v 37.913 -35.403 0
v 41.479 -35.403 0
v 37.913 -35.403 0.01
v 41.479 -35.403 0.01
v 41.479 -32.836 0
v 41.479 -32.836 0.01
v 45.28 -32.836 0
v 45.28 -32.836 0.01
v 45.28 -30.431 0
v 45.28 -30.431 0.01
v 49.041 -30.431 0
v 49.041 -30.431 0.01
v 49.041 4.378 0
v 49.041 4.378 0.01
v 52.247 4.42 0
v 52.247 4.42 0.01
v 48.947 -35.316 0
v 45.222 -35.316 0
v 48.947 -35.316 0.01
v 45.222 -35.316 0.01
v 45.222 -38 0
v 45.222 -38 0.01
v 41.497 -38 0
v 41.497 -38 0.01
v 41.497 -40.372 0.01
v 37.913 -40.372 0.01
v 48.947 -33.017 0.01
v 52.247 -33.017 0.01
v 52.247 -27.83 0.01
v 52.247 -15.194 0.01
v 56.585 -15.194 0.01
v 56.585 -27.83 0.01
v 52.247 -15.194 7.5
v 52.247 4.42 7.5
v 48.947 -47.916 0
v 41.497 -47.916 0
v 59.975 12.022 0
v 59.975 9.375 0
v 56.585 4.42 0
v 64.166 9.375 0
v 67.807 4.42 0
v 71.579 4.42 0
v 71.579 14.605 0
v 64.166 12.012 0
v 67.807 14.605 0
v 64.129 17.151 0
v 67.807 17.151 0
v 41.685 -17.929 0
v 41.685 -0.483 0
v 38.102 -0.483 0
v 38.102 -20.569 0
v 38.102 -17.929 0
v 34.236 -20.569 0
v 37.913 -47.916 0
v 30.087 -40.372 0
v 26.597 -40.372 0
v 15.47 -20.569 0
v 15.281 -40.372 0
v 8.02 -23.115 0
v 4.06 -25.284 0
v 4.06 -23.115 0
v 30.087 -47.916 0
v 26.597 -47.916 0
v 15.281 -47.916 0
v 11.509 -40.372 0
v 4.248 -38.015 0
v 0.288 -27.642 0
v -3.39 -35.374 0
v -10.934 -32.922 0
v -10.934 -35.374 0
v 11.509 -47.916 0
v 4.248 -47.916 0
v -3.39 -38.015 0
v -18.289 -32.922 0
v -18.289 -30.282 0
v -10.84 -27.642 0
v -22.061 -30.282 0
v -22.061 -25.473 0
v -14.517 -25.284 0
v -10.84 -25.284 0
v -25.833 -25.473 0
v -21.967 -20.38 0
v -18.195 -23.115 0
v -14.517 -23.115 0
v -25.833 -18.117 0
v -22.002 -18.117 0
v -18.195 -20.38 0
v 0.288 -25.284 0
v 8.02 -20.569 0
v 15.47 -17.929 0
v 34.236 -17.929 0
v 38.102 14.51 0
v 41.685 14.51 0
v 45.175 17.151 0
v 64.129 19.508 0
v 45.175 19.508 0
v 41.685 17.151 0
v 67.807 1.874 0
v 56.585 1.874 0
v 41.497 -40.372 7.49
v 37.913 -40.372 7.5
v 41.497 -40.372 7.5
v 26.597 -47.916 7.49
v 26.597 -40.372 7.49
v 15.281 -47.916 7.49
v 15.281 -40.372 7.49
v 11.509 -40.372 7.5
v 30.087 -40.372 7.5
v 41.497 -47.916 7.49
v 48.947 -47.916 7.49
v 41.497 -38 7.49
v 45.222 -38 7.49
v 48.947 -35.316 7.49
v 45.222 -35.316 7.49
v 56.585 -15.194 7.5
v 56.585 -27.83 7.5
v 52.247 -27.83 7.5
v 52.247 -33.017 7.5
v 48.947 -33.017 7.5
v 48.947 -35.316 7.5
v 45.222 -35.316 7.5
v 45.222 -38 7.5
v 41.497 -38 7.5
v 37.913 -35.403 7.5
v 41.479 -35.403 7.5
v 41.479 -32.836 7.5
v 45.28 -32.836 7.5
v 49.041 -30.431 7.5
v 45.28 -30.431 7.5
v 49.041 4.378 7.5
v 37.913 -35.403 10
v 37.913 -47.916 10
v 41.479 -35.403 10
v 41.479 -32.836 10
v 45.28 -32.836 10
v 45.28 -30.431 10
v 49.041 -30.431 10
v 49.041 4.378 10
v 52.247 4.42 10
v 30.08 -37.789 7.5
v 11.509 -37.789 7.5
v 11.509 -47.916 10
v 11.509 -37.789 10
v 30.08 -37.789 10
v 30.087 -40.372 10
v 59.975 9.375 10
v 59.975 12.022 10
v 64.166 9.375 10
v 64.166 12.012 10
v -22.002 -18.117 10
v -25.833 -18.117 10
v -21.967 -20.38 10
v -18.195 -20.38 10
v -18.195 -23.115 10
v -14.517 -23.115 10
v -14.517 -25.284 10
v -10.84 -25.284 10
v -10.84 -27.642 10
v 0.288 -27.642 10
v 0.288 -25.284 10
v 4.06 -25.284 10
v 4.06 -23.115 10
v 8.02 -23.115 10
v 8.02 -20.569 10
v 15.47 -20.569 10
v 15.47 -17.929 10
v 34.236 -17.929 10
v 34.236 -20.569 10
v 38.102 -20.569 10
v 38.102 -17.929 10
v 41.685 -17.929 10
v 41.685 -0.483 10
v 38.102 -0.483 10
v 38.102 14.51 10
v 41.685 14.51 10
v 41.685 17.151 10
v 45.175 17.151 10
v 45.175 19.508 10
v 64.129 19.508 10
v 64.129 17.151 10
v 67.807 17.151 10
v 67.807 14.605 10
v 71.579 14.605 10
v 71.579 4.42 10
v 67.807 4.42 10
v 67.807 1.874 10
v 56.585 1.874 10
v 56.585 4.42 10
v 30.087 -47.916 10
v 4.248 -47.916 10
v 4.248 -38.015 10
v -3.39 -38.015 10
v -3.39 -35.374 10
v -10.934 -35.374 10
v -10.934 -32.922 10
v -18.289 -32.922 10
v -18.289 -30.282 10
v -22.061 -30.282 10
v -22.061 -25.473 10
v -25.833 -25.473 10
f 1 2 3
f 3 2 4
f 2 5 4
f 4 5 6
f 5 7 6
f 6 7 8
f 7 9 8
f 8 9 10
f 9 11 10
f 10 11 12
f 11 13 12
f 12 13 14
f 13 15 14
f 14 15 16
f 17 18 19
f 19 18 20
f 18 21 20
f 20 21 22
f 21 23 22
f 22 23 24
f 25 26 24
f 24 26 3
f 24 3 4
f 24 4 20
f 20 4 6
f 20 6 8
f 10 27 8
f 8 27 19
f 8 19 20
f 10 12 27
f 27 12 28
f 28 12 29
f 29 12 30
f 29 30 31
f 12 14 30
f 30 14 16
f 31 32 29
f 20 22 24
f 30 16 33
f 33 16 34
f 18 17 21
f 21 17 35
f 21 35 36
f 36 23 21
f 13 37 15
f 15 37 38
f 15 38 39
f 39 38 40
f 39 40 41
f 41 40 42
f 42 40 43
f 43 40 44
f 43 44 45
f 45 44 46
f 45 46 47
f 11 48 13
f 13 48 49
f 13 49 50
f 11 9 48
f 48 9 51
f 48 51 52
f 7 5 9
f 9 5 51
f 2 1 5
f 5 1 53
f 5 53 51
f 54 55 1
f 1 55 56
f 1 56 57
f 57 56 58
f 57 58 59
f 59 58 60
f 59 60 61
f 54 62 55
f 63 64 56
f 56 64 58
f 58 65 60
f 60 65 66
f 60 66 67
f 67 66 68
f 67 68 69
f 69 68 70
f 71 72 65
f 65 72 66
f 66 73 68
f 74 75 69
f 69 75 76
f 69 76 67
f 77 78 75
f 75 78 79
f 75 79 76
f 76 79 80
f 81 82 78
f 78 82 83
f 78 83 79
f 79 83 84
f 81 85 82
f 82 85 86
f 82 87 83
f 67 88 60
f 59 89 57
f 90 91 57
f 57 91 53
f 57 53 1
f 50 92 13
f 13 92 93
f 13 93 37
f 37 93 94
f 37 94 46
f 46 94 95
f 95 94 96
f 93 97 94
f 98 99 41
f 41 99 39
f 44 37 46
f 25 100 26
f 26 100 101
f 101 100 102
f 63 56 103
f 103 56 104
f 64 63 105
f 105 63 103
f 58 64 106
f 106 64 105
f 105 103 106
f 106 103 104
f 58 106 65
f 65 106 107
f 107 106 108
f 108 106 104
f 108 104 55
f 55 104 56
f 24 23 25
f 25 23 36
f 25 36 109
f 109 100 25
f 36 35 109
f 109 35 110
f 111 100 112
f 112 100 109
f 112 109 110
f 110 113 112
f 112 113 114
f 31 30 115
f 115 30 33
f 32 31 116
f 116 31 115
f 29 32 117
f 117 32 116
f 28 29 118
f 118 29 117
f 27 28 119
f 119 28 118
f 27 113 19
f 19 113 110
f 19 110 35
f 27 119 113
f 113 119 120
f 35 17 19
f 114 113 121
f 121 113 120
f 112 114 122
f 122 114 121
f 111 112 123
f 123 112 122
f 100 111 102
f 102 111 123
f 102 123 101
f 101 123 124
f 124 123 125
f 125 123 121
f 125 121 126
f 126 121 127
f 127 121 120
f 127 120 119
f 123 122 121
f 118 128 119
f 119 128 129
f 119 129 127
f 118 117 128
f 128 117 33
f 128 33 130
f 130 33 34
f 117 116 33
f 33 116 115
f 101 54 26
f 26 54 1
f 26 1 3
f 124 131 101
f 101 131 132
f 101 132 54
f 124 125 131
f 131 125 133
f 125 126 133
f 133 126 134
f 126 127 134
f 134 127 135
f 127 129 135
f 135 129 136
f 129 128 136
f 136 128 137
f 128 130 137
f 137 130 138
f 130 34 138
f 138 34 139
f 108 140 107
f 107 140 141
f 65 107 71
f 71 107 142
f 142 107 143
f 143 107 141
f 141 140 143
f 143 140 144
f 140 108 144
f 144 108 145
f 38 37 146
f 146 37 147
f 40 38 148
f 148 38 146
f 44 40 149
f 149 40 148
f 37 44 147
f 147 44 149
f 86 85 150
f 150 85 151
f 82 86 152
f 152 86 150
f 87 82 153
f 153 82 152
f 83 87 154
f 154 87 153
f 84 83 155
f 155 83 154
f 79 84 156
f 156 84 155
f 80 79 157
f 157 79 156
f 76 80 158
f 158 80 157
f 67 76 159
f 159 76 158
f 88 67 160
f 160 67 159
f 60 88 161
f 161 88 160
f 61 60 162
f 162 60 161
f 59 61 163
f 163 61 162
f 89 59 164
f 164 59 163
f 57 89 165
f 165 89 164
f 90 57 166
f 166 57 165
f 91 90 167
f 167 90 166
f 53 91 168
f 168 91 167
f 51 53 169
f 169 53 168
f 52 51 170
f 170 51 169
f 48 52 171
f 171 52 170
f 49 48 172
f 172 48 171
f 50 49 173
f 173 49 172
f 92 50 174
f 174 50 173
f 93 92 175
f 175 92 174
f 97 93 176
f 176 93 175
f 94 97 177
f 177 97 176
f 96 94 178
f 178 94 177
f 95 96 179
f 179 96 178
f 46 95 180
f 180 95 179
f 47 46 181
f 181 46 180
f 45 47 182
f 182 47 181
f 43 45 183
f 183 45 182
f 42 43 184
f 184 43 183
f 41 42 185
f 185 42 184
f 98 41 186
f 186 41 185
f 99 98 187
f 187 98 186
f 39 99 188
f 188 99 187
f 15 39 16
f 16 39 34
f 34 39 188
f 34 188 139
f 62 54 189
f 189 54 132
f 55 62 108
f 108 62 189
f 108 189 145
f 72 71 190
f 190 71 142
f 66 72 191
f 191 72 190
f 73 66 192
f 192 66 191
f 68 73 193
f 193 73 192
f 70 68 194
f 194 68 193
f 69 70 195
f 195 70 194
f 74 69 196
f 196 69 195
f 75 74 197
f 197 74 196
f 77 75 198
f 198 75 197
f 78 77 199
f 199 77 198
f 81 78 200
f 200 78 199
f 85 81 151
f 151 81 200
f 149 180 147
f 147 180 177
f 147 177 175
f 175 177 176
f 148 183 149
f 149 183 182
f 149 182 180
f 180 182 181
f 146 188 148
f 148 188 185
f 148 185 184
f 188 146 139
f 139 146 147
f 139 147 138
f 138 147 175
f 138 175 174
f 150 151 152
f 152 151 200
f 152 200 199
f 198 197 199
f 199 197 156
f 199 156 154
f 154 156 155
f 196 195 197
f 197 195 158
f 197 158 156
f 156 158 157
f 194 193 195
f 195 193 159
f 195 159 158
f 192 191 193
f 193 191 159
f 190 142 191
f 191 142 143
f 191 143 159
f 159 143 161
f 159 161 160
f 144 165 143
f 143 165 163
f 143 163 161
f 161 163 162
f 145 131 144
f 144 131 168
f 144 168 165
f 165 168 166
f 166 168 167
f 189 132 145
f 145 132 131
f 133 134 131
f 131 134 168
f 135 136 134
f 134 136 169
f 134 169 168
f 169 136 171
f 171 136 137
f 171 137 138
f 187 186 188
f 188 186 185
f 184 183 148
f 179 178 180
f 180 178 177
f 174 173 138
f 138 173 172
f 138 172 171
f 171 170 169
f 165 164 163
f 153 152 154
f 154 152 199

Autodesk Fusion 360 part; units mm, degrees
sketch "Dino" plane through (0, 0, 0) normal (0, 0, 1) x (1, 0, 0)
  line L0 (-25.8333, -18.1173) -> (-25.8333, -25.4727)
  line L1 (-25.8333, -25.4727) -> (-22.0613, -25.4727)
  line L2 (-22.0613, -25.4727) -> (-22.0613, -30.282)
  line L3 (-22.0613, -30.282) -> (-18.2893, -30.282)
  line L4 (-18.2893, -30.282) -> (-18.2893, -32.9224)
  line L5 (-18.2893, -32.9224) -> (-10.9339, -32.9224)
  line L6 (-10.9339, -32.9224) -> (-10.9339, -35.3742)
  line L7 (-10.9339, -35.3742) -> (-3.3899, -35.3742)
  line L8 (-3.3899, -35.3742) -> (-3.3899, -38.0146)
  line L9 (-3.3899, -38.0146) -> (4.2484, -38.0146)
  line L10 (4.2484, -38.0146) -> (4.2484, -47.9161)
  line L11 (4.2484, -47.9161) -> (11.5095, -47.9161)
  line L12 (11.5095, -47.9161) -> (11.5095, -40.3721)
  line L13 (11.5095, -40.3721) -> (15.2815, -40.3721)
  line L14 (15.2815, -40.3721) -> (15.2815, -47.9161)
  line L15 (15.2815, -47.9161) -> (26.5975, -47.9161)
  line L16 (26.5975, -40.3721) -> (30.0866, -40.3721)
  line L17 (30.0866, -40.3721) -> (30.0866, -47.9161)
  line L18 (30.0866, -47.9161) -> (37.9135, -47.9161)
  line L19 (37.9135, -47.9161) -> (37.9135, -40.3721)
  line L20 (37.9135, -40.3721) -> (41.4969, -40.3721)
  line L21 (41.4969, -40.3721) -> (41.4969, -47.9161)
  line L22 (41.4969, -47.9161) -> (48.9466, -47.9161)
  line L23 (48.9466, -47.9161) -> (48.9466, -33.0167)
  line L24 (48.9466, -33.0167) -> (52.2471, -33.0167)
  line L25 (52.2471, -33.0167) -> (52.2471, -27.8302)
  line L26 (52.2471, -27.8302) -> (56.5849, -27.8302)
  line L27 (56.5849, -27.8302) -> (56.5849, -15.194)
  line L28 (56.5849, -15.194) -> (52.2471, -15.194)
  line L29 (52.2471, -15.194) -> (52.2471, 4.4204)
  line L30 (52.2471, 4.4204) -> (56.5849, 4.4204)
  line L31 (56.5849, 4.4204) -> (56.5849, 1.8743)
  line L32 (56.5849, 1.8743) -> (67.8065, 1.8743)
  line L33 (67.8065, 1.8743) -> (67.8065, 4.4204)
  line L34 (67.8065, 4.4204) -> (71.5785, 4.4204)
  line L35 (71.5785, 4.4204) -> (71.5785, 14.6048)
  line L36 (71.5785, 14.6048) -> (67.8065, 14.6048)
  line L37 (67.8065, 14.6048) -> (67.8065, 17.1509)
  line L38 (67.8065, 17.1509) -> (64.1289, 17.1509)
  line L39 (64.1289, 17.1509) -> (64.1289, 19.5084)
  line L40 (64.1289, 19.5084) -> (45.1746, 19.5084)
  line L41 (45.1746, 19.5084) -> (45.1746, 17.1509)
  line L42 (45.1746, 17.1509) -> (41.6855, 17.1509)
  line L43 (41.6855, 17.1509) -> (41.6855, 14.5105)
  line L44 (41.6855, 14.5105) -> (38.1021, 14.5105)
  line L45 (38.1021, 14.5105) -> (38.1021, -0.4832)
  line L46 (38.1021, -0.4832) -> (41.6855, -0.4832)
  line L47 (41.6855, -0.4832) -> (41.6855, -17.9287)
  line L48 (41.6855, -17.9287) -> (38.1021, -17.9287)
  line L49 (38.1021, -17.9287) -> (38.1021, -20.5691)
  line L50 (38.1021, -20.5691) -> (34.2358, -20.5691)
  line L51 (34.2358, -20.5691) -> (34.2358, -17.9287)
  line L52 (34.2358, -17.9287) -> (15.4701, -17.9287)
  line L53 (15.4701, -17.9287) -> (15.4701, -20.5691)
  line L54 (15.4701, -20.5691) -> (8.0204, -20.5691)
  line L55 (8.0204, -20.5691) -> (8.0204, -23.1152)
  line L56 (8.0204, -23.1152) -> (4.0598, -23.1152)
  line L57 (4.0598, -23.1152) -> (4.0598, -25.2841)
  line L58 (4.0598, -25.2841) -> (0.2878, -25.2841)
  line L59 (0.2878, -25.2841) -> (0.2878, -27.6416)
  line L60 (0.2878, -27.6416) -> (-10.8396, -27.6416)
  line L61 (-10.8396, -27.6416) -> (-10.8396, -25.2841)
  line L62 (-10.8396, -25.2841) -> (-14.5173, -25.2841)
  line L63 (-14.5173, -25.2841) -> (-14.5173, -23.1152)
  line L64 (-14.5173, -23.1152) -> (-18.195, -23.1152)
  line L65 (-18.195, -23.1152) -> (-18.195, -20.3805)
  line L66 (-18.195, -20.3805) -> (-21.967, -20.3805)
  line L67 (-25.8333, -18.1173) -> (-22.002, -18.1173)
  line L68 (-22.002, -18.1173) -> (-21.967, -20.3805)
  line L69 (11.5095, -40.3721) -> (11.5095, -37.7886)
  line L70 (11.5095, -37.7886) -> (30.0797, -37.7886)
  line L71 (30.0797, -37.7886) -> (30.0866, -40.3721)
  line L72 (30.0866, -40.3721) -> (26.5975, -40.3721)
  line L73 (37.9135, -40.3721) -> (37.9135, -35.4027)
  line L74 (37.9135, -35.4027) -> (41.4793, -35.4027)
  line L75 (41.4793, -35.4027) -> (41.4793, -32.8357)
  line L76 (41.4793, -32.8357) -> (45.2799, -32.8357)
  line L77 (45.2799, -32.8357) -> (45.2799, -30.4315)
  line L78 (45.2799, -30.4315) -> (49.0411, -30.4315)
  line L79 (49.0411, -30.4315) -> (49.0411, 4.3785)
  line L80 (49.0411, 4.3785) -> (52.2471, 4.4204)
  line L81 (59.9748, 12.022) -> (59.9748, 9.3751)
  line L82 (59.9748, 9.3751) -> (64.1657, 9.3751)
  line L83 (64.1657, 9.3751) -> (64.1657, 12.0124)
  line L84 (64.1657, 12.0124) -> (59.9748, 12.022)
  line L85 (15.2815, -40.3721) -> (26.5975, -40.3721)
  line L86 (26.5975, -45.2558) -> (26.5975, -47.9161)
  line L87 (26.5975, -45.2558) -> (26.5975, -40.3721)
  line L88 (41.4969, -40.3721) -> (41.4969, -38)
  line L89 (41.4969, -38) -> (45.2217, -38)
  line L90 (45.2217, -38) -> (45.2217, -35.3158)
  line L91 (45.2217, -35.3158) -> (48.9466, -35.3158)
extrude "Extrude18" add sketch "Dino" along normal blind 10 contours L0 L1 L2 L3 L4 L5 L6 L7 L8 L9 L10 L11 L12 L17 L18 L19 L30 L31 L32 L33 L34 L35 L36 L37 L38 L39 L40 L41 L42 L43 L44 L45 L46 L47 L48 L49 L50 L51 L52 L53 L54 L55 L56 L57 L58 L59 L60 L61 L62 L63 L64 L65 L66 L67 L68 L69 L70 L71 L73 L74 L75 L76 L77 L78 L79 L80
extrude "Extrude19" add sketch "Dino" along normal blind 7.5 contours L13 L16 L69 L70 L71 L72 L85 | L20 L23 L24 L25 L26 L27 L28 L29 L73 L74 L75 L76 L77 L78 L79 L80 L88 L89 L90 L91
extrude "Extrude20" add sketch "Dino" along normal blind 7.49 contours L14 L15 L85 L86 L87 | L21 L22 L23 L88 L89 L90 L91
extrude "Extrude21" cut sketch "Dino" along normal blind 0.01 contours L20 L23 L24 L25 L26 L27 L28 L29 L73 L74 L75 L76 L77 L78 L79 L80 L88 L89 L90 L91
